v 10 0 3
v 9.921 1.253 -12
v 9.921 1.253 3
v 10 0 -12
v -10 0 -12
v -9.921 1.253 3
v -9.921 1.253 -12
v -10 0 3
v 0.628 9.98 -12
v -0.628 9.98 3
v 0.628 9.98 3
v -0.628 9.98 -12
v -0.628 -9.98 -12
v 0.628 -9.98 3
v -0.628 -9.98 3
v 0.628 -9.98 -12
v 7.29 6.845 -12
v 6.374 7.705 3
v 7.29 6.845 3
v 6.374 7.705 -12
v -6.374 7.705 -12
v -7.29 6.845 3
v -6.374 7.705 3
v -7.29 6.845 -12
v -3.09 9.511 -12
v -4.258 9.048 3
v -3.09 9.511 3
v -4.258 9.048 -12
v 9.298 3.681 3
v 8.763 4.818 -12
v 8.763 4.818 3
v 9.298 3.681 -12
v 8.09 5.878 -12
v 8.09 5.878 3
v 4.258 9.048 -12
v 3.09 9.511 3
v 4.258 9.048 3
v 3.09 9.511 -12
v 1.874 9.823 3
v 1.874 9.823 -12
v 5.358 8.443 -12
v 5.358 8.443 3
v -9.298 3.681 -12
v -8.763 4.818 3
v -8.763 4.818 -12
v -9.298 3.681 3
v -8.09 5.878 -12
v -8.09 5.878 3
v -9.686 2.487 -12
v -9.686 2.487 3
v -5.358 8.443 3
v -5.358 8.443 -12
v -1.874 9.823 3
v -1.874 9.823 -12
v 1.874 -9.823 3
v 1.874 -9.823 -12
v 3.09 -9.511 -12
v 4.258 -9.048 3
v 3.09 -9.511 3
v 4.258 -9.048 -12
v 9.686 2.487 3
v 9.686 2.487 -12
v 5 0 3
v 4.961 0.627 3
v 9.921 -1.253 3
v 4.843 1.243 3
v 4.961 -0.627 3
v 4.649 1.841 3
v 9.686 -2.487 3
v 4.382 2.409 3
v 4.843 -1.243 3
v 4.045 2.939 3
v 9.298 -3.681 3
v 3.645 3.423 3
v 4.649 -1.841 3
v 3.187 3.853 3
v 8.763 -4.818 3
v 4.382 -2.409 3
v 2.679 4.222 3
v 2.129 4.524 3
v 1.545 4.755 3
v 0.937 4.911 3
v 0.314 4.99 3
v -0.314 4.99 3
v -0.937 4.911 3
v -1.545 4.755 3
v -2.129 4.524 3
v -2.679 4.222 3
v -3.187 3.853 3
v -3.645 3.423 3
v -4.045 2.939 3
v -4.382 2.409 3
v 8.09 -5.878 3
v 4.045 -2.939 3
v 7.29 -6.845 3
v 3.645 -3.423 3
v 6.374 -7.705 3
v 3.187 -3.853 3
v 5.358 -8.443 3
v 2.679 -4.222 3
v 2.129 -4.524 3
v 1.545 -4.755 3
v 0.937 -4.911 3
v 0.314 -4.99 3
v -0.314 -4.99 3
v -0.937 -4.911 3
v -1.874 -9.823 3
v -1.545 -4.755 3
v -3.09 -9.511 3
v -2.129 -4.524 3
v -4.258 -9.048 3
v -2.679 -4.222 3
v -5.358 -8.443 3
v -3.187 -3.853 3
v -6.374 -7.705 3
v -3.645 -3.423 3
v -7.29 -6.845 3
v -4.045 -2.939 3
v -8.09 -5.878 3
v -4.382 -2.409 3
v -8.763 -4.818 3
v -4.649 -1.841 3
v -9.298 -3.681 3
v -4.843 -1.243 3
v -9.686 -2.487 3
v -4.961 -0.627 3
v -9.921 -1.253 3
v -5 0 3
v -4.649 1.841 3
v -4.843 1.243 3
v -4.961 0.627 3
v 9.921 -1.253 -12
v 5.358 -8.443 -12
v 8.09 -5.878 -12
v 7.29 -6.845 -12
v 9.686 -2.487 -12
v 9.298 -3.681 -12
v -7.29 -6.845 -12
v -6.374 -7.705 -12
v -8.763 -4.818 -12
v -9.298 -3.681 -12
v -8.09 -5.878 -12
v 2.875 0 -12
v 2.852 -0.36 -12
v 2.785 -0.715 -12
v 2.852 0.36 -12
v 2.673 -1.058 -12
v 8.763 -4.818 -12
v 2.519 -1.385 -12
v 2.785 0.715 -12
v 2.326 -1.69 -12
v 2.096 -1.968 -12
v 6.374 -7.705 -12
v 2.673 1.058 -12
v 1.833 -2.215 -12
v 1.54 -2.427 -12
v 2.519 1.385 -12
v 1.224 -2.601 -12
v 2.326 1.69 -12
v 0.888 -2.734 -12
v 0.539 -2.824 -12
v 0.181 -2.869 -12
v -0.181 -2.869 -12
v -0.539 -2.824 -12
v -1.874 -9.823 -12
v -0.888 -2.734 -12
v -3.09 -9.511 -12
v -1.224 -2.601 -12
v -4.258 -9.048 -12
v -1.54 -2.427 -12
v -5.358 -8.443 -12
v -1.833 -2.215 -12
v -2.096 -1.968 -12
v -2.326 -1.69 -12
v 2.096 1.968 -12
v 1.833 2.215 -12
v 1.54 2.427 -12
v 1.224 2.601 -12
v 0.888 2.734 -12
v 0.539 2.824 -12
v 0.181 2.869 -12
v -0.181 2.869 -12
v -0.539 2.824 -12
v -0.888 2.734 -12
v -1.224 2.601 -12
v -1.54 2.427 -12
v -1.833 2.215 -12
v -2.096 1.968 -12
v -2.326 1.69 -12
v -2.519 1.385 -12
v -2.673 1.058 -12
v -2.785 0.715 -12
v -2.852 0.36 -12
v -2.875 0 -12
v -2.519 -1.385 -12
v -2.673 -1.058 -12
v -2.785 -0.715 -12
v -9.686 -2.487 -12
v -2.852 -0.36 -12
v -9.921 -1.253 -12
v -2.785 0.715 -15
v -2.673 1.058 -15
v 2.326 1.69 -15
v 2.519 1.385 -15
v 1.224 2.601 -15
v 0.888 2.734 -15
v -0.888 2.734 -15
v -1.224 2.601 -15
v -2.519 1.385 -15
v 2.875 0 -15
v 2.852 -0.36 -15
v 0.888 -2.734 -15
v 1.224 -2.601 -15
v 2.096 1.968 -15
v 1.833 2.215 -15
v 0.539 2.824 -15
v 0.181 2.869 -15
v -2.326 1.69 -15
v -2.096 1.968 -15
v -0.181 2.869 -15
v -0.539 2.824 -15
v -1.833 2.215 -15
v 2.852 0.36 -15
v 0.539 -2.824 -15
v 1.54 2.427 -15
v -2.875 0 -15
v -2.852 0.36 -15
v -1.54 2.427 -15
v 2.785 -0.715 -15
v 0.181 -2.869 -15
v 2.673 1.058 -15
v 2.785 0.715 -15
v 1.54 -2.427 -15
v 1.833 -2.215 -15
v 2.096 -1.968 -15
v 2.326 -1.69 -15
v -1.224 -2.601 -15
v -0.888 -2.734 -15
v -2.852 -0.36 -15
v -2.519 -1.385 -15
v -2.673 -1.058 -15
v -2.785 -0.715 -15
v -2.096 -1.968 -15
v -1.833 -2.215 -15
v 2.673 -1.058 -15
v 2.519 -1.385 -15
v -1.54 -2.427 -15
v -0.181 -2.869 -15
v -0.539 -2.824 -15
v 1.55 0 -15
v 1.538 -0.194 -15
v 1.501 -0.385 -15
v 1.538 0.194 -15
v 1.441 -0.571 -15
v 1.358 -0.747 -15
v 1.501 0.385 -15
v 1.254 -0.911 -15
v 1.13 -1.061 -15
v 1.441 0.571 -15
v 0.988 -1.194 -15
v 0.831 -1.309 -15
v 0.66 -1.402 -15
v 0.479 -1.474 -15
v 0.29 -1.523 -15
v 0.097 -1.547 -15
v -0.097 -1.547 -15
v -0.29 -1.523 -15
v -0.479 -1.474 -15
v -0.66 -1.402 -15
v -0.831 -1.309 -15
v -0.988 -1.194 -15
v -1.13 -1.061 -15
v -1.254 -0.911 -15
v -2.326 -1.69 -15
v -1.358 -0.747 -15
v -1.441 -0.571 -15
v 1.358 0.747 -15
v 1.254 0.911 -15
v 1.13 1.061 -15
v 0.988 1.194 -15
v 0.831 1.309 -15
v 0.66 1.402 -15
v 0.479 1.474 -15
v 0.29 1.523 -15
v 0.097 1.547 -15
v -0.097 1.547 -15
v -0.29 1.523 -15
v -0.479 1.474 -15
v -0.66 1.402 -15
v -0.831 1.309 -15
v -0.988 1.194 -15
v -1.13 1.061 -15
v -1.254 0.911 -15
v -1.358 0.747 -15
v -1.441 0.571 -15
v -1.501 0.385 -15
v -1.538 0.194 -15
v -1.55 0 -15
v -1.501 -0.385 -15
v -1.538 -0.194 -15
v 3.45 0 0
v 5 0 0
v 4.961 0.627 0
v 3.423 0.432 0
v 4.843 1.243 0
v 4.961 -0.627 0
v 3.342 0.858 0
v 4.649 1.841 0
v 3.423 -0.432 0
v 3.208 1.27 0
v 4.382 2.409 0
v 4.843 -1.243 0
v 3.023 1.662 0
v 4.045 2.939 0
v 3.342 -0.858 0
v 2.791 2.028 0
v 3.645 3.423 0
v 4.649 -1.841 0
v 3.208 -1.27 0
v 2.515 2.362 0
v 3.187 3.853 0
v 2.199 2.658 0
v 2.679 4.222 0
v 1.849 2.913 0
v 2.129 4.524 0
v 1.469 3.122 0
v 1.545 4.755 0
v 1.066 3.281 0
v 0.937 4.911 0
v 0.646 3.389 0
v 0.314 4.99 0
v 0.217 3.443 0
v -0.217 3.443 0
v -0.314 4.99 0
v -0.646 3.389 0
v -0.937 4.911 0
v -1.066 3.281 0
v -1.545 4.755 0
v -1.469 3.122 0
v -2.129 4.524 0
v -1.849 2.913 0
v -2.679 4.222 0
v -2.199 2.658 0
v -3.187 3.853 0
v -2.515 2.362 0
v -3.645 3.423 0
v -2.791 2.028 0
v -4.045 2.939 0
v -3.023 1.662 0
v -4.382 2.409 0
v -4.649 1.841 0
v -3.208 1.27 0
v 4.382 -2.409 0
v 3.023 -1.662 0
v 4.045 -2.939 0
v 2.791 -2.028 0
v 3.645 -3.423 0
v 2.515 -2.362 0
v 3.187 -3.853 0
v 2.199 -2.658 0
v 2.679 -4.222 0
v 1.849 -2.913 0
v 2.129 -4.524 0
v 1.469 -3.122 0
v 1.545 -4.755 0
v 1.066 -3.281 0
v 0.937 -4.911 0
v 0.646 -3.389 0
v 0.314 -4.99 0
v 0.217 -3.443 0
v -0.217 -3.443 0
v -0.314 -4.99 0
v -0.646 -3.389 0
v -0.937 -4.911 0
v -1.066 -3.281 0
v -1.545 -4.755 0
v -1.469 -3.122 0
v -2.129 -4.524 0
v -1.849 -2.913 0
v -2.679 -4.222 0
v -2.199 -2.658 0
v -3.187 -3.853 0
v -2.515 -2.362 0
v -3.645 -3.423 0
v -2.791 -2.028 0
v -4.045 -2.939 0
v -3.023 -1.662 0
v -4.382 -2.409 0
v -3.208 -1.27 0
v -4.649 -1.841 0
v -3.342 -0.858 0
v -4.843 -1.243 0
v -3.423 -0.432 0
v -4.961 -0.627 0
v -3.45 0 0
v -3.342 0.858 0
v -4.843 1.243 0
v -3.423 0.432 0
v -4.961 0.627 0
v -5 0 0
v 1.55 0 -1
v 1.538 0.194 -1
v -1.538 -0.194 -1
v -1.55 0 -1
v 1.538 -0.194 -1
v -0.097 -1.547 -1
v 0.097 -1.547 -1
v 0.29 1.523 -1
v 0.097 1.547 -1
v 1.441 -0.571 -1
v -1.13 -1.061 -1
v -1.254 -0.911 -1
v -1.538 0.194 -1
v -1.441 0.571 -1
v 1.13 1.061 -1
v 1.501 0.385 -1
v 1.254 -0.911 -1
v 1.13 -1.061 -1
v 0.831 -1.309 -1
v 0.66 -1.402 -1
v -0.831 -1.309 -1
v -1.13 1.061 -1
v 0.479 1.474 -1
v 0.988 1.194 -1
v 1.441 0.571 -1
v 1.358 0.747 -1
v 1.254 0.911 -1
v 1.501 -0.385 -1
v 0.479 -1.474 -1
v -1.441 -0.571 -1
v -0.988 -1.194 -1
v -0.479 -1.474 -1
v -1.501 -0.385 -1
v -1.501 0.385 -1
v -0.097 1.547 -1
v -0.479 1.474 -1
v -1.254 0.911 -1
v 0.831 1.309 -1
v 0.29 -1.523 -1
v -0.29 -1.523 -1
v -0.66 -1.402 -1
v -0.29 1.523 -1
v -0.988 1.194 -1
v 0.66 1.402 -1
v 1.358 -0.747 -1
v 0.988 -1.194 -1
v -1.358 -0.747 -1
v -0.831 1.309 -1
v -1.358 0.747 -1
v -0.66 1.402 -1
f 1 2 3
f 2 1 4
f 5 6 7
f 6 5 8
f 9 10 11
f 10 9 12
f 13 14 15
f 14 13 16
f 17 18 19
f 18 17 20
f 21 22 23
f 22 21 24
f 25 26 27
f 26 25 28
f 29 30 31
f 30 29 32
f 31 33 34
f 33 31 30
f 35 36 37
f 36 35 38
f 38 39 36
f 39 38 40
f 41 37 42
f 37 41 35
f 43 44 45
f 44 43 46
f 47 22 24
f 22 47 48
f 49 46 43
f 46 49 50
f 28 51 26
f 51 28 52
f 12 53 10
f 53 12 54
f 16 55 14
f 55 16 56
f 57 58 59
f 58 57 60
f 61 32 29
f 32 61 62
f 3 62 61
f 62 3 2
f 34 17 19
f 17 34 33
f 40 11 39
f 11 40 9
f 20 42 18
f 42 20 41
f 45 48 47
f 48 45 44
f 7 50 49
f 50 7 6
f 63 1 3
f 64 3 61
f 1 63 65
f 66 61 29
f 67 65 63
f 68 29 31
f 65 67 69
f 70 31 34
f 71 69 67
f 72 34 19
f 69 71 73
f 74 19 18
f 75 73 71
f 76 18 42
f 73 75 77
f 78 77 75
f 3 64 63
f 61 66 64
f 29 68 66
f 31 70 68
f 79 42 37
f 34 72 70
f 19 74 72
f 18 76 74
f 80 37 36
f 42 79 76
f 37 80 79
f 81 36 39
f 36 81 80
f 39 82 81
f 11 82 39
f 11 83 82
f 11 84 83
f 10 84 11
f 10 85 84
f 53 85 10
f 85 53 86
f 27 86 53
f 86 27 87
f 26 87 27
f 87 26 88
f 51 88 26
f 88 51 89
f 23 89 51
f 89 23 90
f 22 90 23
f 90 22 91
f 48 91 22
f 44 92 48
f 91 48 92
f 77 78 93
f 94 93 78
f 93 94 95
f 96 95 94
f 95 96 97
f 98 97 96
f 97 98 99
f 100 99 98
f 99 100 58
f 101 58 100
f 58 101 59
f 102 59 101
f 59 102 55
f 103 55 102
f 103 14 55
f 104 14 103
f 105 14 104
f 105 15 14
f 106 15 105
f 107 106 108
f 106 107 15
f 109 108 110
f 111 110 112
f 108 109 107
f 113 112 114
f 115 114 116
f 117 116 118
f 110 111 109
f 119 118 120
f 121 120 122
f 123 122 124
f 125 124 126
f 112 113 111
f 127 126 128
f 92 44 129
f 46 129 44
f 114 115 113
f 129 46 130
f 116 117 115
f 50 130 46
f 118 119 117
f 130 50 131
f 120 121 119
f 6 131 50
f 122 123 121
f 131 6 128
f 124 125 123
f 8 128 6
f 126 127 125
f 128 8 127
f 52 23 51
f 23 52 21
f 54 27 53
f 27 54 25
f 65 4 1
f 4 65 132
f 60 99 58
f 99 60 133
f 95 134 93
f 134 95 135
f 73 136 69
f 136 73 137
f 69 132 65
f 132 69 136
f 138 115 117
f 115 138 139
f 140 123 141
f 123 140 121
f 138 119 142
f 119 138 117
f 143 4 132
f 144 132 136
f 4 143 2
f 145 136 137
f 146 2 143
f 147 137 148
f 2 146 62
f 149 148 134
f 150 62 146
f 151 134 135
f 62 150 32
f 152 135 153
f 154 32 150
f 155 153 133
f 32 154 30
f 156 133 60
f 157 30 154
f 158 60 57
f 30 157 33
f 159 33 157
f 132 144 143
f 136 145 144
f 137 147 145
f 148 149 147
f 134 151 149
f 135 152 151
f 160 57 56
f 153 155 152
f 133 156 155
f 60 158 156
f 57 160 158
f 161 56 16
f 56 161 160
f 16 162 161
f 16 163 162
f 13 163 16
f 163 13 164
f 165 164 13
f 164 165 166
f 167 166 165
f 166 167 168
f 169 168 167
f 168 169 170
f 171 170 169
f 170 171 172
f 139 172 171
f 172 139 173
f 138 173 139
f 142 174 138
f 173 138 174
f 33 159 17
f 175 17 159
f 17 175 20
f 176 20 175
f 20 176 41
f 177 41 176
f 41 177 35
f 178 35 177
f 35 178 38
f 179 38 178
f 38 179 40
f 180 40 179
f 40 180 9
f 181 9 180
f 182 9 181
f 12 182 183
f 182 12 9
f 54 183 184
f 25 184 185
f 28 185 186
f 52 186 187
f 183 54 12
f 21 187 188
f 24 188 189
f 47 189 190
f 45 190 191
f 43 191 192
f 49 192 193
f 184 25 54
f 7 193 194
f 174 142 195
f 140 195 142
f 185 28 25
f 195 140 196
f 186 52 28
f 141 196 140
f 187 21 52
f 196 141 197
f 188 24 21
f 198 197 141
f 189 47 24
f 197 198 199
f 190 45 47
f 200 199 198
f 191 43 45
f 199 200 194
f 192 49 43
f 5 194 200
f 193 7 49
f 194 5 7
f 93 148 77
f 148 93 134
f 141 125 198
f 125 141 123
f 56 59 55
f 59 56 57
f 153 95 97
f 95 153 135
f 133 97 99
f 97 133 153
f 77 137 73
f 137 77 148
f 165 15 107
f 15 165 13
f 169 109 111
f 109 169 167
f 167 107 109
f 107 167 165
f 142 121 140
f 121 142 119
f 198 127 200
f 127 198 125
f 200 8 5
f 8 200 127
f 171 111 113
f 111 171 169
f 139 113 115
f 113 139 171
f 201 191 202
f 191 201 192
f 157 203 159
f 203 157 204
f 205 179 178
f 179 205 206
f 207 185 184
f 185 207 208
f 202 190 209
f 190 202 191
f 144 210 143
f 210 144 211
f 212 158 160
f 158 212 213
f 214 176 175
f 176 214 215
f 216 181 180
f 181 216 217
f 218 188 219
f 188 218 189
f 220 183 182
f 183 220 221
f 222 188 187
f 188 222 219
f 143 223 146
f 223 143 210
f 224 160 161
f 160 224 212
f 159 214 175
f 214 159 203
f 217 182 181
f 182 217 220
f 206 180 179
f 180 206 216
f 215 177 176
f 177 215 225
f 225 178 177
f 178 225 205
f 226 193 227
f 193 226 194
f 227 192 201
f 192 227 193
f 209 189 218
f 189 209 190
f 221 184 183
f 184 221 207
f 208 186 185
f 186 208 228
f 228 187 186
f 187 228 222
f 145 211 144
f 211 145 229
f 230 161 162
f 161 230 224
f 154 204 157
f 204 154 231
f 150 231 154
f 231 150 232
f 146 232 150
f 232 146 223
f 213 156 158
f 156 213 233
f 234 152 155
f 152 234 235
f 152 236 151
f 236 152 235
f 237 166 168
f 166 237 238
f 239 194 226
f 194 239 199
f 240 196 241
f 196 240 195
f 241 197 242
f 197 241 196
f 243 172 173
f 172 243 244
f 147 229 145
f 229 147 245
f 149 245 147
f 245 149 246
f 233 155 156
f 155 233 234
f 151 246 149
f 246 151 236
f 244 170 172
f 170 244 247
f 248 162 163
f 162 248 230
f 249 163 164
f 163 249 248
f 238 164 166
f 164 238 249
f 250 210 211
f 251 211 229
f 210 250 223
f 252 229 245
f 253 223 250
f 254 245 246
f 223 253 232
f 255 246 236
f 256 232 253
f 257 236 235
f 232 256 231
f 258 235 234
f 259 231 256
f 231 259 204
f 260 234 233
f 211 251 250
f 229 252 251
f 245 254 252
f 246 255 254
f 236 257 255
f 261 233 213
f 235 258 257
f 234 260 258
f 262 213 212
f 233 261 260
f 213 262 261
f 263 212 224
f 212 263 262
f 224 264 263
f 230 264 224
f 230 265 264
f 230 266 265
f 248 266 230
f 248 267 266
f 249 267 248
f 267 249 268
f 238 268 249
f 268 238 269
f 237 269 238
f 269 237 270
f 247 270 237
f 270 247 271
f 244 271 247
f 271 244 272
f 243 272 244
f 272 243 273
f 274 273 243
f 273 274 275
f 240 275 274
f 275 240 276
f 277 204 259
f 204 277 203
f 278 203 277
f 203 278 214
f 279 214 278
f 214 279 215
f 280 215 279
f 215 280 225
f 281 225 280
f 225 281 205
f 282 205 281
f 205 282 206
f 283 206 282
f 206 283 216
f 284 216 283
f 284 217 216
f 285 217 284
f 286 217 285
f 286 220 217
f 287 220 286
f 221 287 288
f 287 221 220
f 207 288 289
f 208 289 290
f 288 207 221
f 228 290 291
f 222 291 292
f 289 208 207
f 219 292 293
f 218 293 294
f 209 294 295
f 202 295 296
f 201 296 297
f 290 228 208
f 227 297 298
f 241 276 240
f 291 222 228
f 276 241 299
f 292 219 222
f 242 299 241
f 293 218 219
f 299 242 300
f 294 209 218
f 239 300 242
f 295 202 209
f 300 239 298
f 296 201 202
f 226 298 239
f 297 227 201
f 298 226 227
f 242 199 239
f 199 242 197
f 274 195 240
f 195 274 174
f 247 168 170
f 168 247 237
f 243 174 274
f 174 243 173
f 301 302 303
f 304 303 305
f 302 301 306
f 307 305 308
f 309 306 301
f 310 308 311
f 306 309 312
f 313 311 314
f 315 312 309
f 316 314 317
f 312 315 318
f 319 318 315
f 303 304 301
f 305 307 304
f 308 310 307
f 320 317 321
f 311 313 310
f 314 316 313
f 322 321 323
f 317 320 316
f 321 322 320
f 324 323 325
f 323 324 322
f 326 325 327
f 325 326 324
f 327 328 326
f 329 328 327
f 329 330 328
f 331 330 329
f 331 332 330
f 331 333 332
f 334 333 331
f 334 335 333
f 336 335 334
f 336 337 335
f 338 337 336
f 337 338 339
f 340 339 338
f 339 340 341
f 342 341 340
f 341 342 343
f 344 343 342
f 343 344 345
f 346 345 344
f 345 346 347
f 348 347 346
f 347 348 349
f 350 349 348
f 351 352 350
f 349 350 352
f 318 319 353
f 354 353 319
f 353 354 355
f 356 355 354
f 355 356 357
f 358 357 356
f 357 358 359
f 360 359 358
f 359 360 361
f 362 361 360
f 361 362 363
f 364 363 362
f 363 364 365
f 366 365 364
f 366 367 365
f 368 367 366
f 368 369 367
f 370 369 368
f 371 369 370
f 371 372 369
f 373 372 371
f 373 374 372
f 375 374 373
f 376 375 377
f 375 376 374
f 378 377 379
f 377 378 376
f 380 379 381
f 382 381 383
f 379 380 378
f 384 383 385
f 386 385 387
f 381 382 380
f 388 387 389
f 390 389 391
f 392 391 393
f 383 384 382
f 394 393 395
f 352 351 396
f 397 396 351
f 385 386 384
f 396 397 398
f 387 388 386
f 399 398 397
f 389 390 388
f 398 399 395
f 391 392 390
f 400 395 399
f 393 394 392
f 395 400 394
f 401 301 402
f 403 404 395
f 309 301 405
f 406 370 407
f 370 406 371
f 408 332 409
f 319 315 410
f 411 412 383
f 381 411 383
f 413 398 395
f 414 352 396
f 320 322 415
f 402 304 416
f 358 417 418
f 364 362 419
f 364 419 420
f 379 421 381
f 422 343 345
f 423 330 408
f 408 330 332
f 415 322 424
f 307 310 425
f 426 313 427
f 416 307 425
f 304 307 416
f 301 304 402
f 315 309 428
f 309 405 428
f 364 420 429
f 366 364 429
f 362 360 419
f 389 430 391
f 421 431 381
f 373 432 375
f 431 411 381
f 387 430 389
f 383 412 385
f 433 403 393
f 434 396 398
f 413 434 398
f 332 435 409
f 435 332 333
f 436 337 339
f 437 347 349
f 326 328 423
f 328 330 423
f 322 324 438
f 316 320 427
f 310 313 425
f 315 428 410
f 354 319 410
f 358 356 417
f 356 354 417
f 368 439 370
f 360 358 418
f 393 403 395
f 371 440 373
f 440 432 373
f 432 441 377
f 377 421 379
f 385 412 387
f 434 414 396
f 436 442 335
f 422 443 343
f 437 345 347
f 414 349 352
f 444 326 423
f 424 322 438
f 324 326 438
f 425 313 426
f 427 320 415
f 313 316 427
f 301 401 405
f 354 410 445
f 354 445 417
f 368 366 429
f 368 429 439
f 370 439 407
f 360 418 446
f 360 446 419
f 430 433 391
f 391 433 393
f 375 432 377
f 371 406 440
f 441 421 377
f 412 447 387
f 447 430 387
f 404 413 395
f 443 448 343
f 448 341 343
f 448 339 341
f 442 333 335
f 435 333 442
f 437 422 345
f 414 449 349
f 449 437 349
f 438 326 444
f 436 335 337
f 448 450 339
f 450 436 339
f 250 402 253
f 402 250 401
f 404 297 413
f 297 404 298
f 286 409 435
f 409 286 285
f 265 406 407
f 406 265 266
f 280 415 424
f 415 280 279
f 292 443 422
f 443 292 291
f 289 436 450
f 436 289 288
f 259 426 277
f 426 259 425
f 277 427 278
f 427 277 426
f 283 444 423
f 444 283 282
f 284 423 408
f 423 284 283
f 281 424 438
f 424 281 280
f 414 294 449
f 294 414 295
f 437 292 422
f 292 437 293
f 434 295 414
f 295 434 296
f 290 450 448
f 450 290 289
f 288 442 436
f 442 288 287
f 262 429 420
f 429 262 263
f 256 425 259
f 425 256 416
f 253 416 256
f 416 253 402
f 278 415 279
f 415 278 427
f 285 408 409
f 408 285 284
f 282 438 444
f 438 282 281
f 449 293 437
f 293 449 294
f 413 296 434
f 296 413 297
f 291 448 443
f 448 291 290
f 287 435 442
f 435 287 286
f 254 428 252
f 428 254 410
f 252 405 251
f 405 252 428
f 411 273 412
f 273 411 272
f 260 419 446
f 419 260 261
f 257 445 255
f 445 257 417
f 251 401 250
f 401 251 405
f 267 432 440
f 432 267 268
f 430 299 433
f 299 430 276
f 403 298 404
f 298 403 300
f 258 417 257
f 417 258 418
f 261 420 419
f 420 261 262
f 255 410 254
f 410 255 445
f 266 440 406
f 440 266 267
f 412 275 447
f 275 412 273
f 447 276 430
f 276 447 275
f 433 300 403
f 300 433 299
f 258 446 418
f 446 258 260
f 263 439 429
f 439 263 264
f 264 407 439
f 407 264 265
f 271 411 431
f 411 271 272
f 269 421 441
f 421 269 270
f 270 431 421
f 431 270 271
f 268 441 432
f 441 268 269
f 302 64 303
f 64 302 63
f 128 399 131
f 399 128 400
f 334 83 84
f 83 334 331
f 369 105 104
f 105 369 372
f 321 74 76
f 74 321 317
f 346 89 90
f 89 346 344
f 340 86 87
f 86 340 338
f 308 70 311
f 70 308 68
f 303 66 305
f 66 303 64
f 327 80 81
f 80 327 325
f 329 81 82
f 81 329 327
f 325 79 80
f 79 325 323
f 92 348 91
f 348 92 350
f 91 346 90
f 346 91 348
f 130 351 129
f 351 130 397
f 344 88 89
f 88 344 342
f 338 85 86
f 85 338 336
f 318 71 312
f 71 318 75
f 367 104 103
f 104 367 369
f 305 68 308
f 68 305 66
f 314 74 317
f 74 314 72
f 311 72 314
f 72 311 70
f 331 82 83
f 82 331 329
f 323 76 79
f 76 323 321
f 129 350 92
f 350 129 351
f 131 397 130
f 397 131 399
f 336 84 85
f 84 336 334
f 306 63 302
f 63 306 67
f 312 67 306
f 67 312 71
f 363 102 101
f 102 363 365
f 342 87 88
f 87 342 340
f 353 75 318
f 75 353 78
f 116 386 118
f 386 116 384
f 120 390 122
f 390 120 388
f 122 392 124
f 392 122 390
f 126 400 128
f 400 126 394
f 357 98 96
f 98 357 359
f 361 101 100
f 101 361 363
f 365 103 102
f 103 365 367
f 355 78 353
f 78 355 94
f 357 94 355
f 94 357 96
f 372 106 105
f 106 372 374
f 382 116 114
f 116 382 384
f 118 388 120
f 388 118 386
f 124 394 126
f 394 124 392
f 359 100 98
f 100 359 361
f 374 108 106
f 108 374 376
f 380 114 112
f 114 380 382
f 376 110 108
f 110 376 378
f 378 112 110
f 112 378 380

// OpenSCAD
$fn = 50;


difference() {
	union() {
		translate(v = [0, 0, -12.0000000000]) {
			cylinder(h = 15, r = 10.0000000000);
		}
		#translate(v = [0, 0, -15.0000000000]) {
			cylinder(h = 15, r = 2.8750000000);
		}
	}
	union() {
		translate(v = [0, 0, 0]) {
			rotate(a = [0, 0, 0]) {
				difference() {
					union() {
						translate(v = [0, 0, -15.0000000000]) {
							cylinder(h = 15, r = 1.2500000000);
						}
						translate(v = [0, 0, -1.0000000000]) {
							cylinder(h = 1.0000000000, r1 = 1.5500000000, r2 = 3.4500000000);
						}
						translate(v = [0, 0, -15.0000000000]) {
							cylinder(h = 15, r = 1.5500000000);
						}
						translate(v = [0, 0, -15.0000000000]) {
							cylinder(h = 15, r = 1.2500000000);
						}
					}
					union();
				}
			}
		}
		#cylinder(h = 3, r = 5.0000000000);
	}
}
